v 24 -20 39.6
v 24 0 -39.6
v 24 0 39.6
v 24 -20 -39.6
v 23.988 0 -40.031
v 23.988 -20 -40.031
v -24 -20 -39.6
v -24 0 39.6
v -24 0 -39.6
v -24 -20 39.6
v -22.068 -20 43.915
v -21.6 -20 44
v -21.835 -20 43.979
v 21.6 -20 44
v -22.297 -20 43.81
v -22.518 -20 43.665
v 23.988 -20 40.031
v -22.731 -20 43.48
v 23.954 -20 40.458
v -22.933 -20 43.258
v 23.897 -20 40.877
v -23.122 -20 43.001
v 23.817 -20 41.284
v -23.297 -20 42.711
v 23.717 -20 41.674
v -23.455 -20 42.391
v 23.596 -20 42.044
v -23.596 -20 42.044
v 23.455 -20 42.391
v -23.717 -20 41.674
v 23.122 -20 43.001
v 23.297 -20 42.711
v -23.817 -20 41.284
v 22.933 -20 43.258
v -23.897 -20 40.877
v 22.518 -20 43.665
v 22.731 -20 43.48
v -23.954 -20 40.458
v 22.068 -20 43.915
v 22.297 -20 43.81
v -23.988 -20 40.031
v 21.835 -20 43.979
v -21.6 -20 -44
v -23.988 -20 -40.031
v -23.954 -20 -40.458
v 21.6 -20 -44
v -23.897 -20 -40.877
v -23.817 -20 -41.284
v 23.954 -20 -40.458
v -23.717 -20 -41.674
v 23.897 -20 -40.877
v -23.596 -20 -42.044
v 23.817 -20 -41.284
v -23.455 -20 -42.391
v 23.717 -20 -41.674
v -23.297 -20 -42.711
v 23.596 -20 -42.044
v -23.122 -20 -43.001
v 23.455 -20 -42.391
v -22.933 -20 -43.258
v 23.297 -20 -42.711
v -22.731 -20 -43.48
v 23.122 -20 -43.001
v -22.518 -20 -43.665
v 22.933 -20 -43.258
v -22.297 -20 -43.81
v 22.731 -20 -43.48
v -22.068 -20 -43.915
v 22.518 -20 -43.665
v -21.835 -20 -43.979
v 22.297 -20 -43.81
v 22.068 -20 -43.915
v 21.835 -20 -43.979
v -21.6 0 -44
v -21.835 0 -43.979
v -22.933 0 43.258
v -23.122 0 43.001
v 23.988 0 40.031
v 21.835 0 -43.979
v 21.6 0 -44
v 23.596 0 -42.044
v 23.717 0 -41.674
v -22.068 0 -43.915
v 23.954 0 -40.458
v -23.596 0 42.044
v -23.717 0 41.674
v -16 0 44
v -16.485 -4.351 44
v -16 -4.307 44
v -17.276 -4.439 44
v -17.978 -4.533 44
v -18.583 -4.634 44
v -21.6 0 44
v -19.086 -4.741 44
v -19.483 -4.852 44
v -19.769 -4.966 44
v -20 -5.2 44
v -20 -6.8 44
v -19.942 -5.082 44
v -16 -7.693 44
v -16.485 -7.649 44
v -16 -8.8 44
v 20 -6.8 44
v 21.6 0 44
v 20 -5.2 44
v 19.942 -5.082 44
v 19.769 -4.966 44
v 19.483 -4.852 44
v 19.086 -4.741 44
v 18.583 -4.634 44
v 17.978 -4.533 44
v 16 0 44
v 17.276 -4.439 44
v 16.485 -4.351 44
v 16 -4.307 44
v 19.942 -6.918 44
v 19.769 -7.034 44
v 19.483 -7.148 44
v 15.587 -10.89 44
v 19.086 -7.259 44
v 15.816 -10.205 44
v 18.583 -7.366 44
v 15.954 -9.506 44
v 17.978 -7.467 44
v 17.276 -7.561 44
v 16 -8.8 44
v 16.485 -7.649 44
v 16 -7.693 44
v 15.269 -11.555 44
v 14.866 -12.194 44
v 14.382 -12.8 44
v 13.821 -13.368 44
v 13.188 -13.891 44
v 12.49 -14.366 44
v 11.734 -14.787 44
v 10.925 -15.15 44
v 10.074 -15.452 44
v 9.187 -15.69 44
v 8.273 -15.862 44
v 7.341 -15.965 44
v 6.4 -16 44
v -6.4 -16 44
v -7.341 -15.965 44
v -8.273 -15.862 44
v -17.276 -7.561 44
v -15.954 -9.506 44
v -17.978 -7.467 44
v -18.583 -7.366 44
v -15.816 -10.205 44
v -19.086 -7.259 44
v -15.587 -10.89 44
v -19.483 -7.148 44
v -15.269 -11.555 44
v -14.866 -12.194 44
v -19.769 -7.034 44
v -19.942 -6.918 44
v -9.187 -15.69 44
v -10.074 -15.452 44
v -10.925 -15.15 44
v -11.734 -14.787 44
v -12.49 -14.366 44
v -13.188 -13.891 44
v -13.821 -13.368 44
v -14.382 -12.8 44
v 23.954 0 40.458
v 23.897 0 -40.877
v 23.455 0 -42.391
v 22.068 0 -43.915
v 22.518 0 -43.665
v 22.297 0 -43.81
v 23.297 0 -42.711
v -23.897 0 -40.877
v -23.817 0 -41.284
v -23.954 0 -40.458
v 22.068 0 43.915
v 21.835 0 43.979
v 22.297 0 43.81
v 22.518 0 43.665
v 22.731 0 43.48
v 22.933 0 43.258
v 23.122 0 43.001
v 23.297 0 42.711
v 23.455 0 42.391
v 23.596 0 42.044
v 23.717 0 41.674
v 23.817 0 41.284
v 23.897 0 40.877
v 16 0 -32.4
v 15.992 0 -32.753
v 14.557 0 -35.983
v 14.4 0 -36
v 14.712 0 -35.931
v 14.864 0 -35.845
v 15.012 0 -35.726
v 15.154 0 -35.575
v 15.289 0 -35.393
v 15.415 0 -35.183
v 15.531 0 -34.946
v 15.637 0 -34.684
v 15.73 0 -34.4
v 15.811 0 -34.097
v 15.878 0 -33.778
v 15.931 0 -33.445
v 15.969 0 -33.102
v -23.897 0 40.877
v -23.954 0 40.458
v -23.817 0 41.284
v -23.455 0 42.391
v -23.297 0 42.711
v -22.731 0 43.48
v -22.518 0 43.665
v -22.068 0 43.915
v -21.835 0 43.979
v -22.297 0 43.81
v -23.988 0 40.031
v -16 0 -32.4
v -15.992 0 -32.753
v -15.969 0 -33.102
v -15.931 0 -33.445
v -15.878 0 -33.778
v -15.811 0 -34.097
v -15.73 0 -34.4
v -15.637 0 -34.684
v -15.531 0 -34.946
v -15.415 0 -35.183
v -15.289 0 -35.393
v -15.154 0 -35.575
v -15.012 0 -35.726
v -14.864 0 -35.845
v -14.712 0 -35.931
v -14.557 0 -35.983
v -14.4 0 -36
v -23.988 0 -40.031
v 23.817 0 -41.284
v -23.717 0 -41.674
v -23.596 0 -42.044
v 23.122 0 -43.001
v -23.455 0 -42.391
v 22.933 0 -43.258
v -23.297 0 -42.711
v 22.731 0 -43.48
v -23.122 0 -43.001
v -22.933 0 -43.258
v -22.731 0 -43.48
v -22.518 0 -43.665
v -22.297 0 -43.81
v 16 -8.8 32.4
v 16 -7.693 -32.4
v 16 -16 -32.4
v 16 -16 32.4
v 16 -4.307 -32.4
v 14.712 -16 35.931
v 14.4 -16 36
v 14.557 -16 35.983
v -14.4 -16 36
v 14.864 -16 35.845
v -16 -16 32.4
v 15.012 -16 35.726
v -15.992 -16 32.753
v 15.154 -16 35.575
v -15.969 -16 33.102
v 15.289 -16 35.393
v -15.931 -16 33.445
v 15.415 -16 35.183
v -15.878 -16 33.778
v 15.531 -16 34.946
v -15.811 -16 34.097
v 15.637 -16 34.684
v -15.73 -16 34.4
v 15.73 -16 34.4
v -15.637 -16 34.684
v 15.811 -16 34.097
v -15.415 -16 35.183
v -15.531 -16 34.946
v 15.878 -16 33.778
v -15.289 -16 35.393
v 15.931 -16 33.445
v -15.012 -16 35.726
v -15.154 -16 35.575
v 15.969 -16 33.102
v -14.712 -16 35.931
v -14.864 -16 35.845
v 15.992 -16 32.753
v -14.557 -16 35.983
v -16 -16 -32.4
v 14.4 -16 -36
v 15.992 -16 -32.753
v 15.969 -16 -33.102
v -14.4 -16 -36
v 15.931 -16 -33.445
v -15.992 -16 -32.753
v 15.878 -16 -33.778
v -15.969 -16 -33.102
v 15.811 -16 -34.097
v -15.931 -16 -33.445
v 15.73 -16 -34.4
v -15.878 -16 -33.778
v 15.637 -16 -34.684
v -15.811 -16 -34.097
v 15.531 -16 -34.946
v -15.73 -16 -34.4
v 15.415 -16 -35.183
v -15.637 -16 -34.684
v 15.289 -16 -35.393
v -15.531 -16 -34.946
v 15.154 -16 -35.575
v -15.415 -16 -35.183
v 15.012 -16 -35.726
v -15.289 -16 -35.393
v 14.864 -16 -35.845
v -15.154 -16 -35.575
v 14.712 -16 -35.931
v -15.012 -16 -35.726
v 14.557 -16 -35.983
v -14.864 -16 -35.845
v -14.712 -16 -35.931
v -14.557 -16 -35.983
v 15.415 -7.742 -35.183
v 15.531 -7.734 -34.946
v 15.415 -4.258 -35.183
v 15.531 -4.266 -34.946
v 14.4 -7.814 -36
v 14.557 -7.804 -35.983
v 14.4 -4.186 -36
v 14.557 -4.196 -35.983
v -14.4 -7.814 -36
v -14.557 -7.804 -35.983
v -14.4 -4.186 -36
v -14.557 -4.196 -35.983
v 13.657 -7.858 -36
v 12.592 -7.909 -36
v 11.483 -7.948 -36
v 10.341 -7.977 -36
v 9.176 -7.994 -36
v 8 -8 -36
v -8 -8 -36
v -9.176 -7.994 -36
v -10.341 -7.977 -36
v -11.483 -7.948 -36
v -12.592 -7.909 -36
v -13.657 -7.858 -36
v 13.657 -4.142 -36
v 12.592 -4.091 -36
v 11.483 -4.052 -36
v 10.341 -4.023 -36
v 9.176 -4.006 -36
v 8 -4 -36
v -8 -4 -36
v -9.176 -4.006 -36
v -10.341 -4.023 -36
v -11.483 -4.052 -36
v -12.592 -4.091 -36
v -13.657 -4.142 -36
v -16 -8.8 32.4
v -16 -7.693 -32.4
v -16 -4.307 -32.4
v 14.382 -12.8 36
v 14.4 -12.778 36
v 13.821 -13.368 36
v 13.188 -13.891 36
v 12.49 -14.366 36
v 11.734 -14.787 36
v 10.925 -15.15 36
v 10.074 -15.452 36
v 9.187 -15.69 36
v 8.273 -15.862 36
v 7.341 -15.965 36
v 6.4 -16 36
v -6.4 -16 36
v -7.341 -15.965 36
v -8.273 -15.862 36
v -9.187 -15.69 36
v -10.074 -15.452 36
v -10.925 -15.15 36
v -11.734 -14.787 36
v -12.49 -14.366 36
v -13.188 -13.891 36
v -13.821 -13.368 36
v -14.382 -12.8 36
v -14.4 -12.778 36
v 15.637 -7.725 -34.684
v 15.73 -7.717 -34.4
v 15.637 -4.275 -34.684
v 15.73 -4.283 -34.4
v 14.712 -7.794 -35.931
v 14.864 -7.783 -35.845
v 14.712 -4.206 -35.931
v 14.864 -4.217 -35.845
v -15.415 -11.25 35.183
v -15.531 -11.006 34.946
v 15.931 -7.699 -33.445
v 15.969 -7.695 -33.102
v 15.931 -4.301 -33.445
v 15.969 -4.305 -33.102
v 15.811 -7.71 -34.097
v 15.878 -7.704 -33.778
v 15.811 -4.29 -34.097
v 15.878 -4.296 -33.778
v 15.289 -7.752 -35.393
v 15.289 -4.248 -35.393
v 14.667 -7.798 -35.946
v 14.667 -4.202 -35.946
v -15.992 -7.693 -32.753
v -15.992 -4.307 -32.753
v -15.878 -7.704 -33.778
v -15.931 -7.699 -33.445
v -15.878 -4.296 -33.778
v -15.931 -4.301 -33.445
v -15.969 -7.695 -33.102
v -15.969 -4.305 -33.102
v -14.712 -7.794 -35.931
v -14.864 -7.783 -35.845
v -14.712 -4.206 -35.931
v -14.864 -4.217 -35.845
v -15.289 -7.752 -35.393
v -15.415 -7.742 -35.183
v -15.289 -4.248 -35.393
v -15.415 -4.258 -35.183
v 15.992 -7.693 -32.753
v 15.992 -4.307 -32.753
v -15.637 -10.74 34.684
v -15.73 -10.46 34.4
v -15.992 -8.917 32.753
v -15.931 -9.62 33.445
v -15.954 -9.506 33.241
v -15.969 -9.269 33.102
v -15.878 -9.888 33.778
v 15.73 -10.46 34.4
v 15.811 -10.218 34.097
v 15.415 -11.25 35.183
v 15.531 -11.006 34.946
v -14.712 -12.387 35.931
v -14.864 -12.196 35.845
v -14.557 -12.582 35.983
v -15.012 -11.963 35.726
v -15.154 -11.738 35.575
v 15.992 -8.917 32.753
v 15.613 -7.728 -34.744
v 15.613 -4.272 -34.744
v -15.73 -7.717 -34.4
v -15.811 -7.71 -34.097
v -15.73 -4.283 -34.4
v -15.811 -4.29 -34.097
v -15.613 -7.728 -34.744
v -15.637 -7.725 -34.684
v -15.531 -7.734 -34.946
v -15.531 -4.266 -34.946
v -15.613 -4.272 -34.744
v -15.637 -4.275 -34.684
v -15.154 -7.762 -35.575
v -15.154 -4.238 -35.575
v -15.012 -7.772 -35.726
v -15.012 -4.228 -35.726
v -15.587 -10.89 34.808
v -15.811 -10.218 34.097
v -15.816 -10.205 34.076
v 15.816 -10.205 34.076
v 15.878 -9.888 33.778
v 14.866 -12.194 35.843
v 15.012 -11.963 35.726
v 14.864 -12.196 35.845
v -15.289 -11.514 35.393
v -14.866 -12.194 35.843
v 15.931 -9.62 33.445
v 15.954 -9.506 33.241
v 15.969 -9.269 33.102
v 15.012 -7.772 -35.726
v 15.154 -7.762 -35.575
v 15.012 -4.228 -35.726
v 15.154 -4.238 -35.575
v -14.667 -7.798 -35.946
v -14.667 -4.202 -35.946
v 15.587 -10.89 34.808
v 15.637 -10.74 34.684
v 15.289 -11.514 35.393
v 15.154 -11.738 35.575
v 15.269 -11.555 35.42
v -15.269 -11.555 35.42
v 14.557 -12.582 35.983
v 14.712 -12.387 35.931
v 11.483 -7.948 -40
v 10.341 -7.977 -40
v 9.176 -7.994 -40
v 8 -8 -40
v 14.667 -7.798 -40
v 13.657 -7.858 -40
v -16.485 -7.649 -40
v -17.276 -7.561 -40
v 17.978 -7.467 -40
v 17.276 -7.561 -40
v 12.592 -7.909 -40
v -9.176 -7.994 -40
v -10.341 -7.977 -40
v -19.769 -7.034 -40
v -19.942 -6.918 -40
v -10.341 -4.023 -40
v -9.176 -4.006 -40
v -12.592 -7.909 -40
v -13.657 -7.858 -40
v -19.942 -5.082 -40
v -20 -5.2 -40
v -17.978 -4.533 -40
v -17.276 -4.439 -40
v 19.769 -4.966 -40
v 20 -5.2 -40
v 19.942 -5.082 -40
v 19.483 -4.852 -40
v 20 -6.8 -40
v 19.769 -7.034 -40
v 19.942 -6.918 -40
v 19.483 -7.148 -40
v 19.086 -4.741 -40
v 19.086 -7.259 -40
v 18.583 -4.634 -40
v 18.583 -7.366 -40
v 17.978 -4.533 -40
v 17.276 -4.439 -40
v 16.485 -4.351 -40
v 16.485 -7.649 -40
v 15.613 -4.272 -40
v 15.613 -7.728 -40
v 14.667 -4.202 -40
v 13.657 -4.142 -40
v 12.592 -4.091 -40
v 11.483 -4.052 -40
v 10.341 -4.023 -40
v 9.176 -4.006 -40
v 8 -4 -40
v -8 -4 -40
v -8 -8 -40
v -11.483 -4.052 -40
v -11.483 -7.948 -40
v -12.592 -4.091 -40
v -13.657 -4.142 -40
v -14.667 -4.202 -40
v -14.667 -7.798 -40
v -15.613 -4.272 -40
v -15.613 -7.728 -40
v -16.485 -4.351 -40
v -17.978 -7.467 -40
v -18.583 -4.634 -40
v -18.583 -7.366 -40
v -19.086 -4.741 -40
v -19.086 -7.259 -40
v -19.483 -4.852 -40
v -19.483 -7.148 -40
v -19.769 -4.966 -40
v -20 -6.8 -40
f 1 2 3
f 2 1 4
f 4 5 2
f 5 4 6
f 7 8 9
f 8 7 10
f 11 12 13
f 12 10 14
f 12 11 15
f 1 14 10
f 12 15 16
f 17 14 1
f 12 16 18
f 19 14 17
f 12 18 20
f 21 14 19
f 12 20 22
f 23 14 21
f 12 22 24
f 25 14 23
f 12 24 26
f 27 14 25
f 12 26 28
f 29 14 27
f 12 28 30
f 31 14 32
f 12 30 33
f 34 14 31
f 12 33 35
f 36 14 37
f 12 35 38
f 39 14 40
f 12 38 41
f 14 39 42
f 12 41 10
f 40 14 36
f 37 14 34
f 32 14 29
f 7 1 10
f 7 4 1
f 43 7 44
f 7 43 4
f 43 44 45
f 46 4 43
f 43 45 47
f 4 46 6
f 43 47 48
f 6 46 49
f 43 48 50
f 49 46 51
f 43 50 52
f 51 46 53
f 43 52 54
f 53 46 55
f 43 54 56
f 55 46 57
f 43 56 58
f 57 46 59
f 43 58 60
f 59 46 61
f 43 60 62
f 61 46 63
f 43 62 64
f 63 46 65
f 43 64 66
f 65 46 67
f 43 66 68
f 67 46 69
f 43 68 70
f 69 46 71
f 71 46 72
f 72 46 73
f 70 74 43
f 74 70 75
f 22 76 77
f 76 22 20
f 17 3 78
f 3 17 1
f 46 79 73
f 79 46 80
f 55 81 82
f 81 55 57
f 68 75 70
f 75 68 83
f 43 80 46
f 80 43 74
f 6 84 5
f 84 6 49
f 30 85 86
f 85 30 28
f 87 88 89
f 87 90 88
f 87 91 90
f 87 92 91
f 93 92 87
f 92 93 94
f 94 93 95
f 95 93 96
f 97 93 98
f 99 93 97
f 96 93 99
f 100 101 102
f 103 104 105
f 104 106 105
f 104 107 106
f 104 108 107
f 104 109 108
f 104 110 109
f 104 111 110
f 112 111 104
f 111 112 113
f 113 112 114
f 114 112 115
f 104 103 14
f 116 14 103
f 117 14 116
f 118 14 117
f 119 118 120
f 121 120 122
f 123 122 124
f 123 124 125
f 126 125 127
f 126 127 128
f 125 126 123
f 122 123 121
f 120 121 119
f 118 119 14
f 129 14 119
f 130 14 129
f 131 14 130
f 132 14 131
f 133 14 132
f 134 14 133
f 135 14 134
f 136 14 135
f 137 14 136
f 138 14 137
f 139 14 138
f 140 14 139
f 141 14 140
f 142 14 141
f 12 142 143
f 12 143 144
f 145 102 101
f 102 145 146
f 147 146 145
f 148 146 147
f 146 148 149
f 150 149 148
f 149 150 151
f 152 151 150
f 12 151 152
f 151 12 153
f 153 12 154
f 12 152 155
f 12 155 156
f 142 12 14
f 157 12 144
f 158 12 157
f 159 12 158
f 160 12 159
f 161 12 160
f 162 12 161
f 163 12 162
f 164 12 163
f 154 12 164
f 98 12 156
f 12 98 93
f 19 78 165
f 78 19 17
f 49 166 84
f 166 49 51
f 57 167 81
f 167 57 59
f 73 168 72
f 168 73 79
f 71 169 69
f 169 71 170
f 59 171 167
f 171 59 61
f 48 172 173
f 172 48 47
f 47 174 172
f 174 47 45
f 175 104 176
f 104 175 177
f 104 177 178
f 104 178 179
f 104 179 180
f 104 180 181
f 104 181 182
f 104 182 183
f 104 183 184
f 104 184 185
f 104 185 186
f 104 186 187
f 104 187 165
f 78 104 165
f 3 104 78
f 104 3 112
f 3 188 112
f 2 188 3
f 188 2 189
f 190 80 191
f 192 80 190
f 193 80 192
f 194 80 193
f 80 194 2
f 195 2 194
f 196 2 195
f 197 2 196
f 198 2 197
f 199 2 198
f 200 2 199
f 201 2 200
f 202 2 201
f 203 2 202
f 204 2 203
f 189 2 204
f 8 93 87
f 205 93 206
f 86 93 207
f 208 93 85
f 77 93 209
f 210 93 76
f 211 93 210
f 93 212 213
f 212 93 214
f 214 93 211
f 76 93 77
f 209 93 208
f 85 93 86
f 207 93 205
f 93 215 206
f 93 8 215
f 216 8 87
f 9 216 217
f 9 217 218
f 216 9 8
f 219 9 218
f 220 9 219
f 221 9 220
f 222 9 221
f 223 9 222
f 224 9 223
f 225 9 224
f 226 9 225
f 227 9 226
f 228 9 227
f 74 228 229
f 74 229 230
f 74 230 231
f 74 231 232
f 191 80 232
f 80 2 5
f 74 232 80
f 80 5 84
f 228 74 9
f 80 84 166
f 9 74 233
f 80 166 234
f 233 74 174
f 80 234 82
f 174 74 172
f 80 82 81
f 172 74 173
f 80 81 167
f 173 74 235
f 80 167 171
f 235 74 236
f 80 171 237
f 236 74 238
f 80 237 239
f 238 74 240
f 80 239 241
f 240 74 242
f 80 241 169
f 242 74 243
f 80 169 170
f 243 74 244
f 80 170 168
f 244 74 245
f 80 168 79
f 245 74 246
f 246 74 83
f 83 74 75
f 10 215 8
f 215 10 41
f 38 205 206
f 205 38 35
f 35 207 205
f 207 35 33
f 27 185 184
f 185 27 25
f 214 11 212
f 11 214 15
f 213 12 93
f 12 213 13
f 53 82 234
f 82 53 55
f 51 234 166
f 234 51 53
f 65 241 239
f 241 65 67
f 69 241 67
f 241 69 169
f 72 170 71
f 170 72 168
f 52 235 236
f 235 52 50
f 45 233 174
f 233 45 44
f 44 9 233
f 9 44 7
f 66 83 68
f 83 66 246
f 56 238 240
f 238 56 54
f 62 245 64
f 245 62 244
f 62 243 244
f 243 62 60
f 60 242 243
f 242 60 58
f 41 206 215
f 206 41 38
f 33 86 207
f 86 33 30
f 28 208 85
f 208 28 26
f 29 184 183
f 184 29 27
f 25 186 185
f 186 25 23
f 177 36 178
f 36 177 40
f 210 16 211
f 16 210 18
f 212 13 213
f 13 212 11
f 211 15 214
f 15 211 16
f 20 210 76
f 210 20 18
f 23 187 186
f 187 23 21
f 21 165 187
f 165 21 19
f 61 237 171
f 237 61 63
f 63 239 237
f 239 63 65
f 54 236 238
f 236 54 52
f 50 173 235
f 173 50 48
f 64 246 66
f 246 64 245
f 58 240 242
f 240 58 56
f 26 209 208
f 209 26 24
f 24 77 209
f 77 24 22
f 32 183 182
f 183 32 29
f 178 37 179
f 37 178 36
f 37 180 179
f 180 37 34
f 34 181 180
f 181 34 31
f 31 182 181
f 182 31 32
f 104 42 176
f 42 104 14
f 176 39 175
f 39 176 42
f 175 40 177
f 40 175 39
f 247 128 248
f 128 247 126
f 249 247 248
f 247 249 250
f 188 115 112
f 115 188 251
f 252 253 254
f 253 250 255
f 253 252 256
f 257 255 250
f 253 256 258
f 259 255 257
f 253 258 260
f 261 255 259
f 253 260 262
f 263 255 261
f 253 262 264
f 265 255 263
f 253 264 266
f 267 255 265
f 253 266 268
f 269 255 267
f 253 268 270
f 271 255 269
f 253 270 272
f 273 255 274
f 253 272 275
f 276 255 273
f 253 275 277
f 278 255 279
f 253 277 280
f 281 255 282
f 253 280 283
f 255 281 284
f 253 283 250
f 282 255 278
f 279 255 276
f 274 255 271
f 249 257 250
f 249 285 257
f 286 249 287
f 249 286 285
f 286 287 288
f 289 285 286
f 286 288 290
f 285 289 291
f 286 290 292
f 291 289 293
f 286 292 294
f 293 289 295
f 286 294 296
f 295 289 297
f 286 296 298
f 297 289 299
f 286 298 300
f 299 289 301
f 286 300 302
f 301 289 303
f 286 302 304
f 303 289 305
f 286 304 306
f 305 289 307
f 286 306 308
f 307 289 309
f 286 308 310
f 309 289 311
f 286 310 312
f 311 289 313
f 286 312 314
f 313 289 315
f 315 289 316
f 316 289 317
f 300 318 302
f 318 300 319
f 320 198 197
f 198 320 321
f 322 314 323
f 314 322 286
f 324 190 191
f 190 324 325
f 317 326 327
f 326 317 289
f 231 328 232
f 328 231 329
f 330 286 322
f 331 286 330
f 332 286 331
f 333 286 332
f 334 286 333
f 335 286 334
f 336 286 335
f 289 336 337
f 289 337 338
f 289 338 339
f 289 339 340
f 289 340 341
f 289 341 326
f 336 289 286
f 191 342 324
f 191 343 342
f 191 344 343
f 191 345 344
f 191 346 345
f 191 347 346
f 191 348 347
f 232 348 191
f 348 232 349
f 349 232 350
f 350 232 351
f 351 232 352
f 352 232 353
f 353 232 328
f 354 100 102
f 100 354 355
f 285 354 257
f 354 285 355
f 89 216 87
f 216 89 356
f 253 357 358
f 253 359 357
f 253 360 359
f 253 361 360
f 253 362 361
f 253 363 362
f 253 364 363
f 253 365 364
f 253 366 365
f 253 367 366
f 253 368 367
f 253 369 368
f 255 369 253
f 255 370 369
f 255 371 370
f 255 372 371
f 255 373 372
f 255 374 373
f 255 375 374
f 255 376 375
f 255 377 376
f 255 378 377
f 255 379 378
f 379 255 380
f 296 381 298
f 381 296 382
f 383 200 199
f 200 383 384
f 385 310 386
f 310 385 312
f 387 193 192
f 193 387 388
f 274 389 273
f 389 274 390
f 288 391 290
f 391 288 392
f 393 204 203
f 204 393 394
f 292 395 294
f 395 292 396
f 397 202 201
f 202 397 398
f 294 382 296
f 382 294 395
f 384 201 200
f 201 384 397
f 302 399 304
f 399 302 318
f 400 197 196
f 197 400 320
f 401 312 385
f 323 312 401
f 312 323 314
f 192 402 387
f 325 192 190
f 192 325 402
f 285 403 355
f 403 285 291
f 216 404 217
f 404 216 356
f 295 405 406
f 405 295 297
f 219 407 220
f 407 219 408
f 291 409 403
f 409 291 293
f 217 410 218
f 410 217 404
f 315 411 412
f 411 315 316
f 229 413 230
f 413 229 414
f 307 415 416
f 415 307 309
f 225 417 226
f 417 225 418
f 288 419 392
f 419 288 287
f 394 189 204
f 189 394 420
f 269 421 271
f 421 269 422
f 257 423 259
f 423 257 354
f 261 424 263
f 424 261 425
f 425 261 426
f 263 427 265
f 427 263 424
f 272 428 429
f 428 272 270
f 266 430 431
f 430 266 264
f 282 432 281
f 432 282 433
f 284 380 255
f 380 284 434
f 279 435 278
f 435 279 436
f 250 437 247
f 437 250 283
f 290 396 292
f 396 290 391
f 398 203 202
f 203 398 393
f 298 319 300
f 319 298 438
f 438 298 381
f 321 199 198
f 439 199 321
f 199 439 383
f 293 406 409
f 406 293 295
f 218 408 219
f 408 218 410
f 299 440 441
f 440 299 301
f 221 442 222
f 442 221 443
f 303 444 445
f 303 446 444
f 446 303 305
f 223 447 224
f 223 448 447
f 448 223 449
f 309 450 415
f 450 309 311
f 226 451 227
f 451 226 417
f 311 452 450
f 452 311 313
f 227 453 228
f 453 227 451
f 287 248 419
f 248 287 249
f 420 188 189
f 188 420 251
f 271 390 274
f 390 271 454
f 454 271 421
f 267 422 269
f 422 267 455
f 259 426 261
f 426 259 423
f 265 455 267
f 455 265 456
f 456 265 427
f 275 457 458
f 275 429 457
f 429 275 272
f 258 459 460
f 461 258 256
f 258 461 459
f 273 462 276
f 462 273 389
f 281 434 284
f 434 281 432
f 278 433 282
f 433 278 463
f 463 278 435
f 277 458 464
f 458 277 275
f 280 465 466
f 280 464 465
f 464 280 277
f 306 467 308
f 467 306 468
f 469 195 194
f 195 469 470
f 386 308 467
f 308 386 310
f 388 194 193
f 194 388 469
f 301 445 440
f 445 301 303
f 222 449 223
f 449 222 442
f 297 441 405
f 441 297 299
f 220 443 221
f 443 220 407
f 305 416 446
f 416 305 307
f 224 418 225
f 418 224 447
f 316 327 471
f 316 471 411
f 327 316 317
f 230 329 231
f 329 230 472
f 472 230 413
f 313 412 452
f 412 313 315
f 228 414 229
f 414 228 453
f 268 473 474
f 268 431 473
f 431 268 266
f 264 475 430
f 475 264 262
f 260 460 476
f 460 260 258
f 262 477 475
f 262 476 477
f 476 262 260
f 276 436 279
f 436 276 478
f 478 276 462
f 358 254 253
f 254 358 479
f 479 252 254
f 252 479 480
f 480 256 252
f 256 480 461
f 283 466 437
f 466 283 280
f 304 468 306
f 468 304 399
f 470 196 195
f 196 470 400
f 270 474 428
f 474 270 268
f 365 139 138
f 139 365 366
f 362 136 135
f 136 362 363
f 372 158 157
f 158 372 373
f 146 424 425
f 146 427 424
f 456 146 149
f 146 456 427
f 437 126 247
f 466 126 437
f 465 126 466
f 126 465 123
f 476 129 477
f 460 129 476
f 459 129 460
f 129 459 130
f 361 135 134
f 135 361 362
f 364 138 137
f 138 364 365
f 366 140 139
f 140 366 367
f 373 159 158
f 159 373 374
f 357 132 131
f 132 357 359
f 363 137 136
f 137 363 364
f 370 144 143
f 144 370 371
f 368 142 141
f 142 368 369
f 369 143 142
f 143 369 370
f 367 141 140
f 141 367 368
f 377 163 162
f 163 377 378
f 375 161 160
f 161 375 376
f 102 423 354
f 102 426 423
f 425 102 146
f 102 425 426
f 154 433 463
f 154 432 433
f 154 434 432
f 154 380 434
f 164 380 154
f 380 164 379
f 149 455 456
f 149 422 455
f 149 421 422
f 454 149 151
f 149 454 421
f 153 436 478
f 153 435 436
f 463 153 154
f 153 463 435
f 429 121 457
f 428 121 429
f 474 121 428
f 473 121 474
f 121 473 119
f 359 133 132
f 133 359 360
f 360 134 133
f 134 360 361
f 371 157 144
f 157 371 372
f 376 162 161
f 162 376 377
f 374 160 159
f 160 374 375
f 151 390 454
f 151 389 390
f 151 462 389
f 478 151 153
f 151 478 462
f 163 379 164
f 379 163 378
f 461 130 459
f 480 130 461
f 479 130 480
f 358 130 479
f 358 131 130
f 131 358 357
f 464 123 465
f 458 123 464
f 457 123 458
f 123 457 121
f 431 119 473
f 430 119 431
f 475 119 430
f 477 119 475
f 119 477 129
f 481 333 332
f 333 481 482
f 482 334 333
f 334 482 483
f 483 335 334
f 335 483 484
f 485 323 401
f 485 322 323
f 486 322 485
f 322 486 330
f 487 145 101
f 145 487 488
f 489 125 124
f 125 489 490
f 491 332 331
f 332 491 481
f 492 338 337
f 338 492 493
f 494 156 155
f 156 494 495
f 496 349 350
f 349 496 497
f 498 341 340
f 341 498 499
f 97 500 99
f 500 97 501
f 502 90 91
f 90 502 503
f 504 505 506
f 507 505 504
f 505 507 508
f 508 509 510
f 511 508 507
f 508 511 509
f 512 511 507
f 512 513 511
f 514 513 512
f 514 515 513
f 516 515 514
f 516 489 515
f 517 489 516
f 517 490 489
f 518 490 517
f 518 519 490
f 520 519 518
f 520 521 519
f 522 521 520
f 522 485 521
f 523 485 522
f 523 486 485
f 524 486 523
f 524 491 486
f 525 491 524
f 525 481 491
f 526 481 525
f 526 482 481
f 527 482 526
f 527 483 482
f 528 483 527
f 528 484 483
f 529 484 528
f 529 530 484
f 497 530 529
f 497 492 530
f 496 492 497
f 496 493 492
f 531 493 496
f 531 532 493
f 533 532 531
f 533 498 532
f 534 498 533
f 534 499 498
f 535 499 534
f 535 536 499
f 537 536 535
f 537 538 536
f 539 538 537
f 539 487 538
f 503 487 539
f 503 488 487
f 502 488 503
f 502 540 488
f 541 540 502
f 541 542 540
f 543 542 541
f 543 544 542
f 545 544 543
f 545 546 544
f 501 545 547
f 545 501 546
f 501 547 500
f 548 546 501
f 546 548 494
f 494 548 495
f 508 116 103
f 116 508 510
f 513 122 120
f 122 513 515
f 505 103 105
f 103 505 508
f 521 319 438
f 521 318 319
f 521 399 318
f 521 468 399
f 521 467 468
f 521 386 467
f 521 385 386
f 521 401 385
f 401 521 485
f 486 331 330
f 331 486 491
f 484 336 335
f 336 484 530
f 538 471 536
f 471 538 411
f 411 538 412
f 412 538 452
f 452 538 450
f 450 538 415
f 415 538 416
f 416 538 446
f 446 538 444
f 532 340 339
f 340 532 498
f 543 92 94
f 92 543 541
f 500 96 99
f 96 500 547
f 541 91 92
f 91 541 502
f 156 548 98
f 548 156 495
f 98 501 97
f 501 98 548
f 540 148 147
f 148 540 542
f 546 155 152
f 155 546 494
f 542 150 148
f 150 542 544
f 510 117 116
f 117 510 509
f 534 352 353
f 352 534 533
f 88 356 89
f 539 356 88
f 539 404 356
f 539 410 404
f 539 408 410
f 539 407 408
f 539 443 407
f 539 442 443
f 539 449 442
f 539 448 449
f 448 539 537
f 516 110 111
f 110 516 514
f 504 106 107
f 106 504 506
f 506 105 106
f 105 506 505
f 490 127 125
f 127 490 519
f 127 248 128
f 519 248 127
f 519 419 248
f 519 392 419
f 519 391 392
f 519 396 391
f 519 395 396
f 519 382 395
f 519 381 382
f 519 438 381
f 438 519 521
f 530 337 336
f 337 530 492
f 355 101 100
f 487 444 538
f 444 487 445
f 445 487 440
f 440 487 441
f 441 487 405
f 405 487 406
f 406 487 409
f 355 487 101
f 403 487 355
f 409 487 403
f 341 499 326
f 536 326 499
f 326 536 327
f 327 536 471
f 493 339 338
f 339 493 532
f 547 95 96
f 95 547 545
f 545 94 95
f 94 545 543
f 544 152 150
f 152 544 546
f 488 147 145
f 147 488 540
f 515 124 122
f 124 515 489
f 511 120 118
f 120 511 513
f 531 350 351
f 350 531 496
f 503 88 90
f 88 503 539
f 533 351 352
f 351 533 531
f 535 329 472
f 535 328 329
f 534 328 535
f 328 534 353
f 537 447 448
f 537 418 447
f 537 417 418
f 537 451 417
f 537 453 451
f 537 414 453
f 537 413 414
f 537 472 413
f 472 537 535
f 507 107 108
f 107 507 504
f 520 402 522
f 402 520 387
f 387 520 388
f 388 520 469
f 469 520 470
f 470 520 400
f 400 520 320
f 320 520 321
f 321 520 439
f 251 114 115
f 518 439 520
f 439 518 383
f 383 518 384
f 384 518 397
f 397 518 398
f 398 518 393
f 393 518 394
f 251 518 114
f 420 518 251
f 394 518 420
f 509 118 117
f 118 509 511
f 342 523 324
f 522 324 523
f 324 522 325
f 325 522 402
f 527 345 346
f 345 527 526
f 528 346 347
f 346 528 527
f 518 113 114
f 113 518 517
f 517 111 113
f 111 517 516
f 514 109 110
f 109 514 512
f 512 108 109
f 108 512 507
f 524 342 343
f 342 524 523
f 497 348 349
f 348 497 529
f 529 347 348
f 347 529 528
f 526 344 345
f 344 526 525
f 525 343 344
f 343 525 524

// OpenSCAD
WALL = 4;
WIDTH = 40 + (WALL * 2);
LENGTH = 80 + (WALL * 2);

module Box(width, length, height, corner = 0.1) {
  scale([width, length, height]) {
    minkowski() {
      cube([1 - corner, 1 - corner, 0.5], center = true);
      cylinder($fn=64, d=corner, h=0.5, center = true);
    }
  }
}

color("Blue") {
  rotate([90, 0, 0]) {
    difference() {
      translate([0, 0, WALL * 2.5]) {
        Box(WIDTH, LENGTH, WALL * 5);
      }
      translate([0, 0, WALL * 1.5]) {
        Box(WIDTH - WALL * 4, LENGTH - WALL * 4, WALL * 5);
      }
      translate([0, (LENGTH * 0.5) - WALL, WALL]) {
        rotate([90, 0, 0]) {
          Box(WIDTH - (WALL * 4.0), WALL * 6, WALL * 4, 0.6);
        }
      }
      translate([0, WALL, WALL * 1.5]) {
        rotate([90, 0, 0]) {
          Box(WIDTH - WALL * 2, WALL, LENGTH, 0.6);
        }
      }
    }
  }
}
